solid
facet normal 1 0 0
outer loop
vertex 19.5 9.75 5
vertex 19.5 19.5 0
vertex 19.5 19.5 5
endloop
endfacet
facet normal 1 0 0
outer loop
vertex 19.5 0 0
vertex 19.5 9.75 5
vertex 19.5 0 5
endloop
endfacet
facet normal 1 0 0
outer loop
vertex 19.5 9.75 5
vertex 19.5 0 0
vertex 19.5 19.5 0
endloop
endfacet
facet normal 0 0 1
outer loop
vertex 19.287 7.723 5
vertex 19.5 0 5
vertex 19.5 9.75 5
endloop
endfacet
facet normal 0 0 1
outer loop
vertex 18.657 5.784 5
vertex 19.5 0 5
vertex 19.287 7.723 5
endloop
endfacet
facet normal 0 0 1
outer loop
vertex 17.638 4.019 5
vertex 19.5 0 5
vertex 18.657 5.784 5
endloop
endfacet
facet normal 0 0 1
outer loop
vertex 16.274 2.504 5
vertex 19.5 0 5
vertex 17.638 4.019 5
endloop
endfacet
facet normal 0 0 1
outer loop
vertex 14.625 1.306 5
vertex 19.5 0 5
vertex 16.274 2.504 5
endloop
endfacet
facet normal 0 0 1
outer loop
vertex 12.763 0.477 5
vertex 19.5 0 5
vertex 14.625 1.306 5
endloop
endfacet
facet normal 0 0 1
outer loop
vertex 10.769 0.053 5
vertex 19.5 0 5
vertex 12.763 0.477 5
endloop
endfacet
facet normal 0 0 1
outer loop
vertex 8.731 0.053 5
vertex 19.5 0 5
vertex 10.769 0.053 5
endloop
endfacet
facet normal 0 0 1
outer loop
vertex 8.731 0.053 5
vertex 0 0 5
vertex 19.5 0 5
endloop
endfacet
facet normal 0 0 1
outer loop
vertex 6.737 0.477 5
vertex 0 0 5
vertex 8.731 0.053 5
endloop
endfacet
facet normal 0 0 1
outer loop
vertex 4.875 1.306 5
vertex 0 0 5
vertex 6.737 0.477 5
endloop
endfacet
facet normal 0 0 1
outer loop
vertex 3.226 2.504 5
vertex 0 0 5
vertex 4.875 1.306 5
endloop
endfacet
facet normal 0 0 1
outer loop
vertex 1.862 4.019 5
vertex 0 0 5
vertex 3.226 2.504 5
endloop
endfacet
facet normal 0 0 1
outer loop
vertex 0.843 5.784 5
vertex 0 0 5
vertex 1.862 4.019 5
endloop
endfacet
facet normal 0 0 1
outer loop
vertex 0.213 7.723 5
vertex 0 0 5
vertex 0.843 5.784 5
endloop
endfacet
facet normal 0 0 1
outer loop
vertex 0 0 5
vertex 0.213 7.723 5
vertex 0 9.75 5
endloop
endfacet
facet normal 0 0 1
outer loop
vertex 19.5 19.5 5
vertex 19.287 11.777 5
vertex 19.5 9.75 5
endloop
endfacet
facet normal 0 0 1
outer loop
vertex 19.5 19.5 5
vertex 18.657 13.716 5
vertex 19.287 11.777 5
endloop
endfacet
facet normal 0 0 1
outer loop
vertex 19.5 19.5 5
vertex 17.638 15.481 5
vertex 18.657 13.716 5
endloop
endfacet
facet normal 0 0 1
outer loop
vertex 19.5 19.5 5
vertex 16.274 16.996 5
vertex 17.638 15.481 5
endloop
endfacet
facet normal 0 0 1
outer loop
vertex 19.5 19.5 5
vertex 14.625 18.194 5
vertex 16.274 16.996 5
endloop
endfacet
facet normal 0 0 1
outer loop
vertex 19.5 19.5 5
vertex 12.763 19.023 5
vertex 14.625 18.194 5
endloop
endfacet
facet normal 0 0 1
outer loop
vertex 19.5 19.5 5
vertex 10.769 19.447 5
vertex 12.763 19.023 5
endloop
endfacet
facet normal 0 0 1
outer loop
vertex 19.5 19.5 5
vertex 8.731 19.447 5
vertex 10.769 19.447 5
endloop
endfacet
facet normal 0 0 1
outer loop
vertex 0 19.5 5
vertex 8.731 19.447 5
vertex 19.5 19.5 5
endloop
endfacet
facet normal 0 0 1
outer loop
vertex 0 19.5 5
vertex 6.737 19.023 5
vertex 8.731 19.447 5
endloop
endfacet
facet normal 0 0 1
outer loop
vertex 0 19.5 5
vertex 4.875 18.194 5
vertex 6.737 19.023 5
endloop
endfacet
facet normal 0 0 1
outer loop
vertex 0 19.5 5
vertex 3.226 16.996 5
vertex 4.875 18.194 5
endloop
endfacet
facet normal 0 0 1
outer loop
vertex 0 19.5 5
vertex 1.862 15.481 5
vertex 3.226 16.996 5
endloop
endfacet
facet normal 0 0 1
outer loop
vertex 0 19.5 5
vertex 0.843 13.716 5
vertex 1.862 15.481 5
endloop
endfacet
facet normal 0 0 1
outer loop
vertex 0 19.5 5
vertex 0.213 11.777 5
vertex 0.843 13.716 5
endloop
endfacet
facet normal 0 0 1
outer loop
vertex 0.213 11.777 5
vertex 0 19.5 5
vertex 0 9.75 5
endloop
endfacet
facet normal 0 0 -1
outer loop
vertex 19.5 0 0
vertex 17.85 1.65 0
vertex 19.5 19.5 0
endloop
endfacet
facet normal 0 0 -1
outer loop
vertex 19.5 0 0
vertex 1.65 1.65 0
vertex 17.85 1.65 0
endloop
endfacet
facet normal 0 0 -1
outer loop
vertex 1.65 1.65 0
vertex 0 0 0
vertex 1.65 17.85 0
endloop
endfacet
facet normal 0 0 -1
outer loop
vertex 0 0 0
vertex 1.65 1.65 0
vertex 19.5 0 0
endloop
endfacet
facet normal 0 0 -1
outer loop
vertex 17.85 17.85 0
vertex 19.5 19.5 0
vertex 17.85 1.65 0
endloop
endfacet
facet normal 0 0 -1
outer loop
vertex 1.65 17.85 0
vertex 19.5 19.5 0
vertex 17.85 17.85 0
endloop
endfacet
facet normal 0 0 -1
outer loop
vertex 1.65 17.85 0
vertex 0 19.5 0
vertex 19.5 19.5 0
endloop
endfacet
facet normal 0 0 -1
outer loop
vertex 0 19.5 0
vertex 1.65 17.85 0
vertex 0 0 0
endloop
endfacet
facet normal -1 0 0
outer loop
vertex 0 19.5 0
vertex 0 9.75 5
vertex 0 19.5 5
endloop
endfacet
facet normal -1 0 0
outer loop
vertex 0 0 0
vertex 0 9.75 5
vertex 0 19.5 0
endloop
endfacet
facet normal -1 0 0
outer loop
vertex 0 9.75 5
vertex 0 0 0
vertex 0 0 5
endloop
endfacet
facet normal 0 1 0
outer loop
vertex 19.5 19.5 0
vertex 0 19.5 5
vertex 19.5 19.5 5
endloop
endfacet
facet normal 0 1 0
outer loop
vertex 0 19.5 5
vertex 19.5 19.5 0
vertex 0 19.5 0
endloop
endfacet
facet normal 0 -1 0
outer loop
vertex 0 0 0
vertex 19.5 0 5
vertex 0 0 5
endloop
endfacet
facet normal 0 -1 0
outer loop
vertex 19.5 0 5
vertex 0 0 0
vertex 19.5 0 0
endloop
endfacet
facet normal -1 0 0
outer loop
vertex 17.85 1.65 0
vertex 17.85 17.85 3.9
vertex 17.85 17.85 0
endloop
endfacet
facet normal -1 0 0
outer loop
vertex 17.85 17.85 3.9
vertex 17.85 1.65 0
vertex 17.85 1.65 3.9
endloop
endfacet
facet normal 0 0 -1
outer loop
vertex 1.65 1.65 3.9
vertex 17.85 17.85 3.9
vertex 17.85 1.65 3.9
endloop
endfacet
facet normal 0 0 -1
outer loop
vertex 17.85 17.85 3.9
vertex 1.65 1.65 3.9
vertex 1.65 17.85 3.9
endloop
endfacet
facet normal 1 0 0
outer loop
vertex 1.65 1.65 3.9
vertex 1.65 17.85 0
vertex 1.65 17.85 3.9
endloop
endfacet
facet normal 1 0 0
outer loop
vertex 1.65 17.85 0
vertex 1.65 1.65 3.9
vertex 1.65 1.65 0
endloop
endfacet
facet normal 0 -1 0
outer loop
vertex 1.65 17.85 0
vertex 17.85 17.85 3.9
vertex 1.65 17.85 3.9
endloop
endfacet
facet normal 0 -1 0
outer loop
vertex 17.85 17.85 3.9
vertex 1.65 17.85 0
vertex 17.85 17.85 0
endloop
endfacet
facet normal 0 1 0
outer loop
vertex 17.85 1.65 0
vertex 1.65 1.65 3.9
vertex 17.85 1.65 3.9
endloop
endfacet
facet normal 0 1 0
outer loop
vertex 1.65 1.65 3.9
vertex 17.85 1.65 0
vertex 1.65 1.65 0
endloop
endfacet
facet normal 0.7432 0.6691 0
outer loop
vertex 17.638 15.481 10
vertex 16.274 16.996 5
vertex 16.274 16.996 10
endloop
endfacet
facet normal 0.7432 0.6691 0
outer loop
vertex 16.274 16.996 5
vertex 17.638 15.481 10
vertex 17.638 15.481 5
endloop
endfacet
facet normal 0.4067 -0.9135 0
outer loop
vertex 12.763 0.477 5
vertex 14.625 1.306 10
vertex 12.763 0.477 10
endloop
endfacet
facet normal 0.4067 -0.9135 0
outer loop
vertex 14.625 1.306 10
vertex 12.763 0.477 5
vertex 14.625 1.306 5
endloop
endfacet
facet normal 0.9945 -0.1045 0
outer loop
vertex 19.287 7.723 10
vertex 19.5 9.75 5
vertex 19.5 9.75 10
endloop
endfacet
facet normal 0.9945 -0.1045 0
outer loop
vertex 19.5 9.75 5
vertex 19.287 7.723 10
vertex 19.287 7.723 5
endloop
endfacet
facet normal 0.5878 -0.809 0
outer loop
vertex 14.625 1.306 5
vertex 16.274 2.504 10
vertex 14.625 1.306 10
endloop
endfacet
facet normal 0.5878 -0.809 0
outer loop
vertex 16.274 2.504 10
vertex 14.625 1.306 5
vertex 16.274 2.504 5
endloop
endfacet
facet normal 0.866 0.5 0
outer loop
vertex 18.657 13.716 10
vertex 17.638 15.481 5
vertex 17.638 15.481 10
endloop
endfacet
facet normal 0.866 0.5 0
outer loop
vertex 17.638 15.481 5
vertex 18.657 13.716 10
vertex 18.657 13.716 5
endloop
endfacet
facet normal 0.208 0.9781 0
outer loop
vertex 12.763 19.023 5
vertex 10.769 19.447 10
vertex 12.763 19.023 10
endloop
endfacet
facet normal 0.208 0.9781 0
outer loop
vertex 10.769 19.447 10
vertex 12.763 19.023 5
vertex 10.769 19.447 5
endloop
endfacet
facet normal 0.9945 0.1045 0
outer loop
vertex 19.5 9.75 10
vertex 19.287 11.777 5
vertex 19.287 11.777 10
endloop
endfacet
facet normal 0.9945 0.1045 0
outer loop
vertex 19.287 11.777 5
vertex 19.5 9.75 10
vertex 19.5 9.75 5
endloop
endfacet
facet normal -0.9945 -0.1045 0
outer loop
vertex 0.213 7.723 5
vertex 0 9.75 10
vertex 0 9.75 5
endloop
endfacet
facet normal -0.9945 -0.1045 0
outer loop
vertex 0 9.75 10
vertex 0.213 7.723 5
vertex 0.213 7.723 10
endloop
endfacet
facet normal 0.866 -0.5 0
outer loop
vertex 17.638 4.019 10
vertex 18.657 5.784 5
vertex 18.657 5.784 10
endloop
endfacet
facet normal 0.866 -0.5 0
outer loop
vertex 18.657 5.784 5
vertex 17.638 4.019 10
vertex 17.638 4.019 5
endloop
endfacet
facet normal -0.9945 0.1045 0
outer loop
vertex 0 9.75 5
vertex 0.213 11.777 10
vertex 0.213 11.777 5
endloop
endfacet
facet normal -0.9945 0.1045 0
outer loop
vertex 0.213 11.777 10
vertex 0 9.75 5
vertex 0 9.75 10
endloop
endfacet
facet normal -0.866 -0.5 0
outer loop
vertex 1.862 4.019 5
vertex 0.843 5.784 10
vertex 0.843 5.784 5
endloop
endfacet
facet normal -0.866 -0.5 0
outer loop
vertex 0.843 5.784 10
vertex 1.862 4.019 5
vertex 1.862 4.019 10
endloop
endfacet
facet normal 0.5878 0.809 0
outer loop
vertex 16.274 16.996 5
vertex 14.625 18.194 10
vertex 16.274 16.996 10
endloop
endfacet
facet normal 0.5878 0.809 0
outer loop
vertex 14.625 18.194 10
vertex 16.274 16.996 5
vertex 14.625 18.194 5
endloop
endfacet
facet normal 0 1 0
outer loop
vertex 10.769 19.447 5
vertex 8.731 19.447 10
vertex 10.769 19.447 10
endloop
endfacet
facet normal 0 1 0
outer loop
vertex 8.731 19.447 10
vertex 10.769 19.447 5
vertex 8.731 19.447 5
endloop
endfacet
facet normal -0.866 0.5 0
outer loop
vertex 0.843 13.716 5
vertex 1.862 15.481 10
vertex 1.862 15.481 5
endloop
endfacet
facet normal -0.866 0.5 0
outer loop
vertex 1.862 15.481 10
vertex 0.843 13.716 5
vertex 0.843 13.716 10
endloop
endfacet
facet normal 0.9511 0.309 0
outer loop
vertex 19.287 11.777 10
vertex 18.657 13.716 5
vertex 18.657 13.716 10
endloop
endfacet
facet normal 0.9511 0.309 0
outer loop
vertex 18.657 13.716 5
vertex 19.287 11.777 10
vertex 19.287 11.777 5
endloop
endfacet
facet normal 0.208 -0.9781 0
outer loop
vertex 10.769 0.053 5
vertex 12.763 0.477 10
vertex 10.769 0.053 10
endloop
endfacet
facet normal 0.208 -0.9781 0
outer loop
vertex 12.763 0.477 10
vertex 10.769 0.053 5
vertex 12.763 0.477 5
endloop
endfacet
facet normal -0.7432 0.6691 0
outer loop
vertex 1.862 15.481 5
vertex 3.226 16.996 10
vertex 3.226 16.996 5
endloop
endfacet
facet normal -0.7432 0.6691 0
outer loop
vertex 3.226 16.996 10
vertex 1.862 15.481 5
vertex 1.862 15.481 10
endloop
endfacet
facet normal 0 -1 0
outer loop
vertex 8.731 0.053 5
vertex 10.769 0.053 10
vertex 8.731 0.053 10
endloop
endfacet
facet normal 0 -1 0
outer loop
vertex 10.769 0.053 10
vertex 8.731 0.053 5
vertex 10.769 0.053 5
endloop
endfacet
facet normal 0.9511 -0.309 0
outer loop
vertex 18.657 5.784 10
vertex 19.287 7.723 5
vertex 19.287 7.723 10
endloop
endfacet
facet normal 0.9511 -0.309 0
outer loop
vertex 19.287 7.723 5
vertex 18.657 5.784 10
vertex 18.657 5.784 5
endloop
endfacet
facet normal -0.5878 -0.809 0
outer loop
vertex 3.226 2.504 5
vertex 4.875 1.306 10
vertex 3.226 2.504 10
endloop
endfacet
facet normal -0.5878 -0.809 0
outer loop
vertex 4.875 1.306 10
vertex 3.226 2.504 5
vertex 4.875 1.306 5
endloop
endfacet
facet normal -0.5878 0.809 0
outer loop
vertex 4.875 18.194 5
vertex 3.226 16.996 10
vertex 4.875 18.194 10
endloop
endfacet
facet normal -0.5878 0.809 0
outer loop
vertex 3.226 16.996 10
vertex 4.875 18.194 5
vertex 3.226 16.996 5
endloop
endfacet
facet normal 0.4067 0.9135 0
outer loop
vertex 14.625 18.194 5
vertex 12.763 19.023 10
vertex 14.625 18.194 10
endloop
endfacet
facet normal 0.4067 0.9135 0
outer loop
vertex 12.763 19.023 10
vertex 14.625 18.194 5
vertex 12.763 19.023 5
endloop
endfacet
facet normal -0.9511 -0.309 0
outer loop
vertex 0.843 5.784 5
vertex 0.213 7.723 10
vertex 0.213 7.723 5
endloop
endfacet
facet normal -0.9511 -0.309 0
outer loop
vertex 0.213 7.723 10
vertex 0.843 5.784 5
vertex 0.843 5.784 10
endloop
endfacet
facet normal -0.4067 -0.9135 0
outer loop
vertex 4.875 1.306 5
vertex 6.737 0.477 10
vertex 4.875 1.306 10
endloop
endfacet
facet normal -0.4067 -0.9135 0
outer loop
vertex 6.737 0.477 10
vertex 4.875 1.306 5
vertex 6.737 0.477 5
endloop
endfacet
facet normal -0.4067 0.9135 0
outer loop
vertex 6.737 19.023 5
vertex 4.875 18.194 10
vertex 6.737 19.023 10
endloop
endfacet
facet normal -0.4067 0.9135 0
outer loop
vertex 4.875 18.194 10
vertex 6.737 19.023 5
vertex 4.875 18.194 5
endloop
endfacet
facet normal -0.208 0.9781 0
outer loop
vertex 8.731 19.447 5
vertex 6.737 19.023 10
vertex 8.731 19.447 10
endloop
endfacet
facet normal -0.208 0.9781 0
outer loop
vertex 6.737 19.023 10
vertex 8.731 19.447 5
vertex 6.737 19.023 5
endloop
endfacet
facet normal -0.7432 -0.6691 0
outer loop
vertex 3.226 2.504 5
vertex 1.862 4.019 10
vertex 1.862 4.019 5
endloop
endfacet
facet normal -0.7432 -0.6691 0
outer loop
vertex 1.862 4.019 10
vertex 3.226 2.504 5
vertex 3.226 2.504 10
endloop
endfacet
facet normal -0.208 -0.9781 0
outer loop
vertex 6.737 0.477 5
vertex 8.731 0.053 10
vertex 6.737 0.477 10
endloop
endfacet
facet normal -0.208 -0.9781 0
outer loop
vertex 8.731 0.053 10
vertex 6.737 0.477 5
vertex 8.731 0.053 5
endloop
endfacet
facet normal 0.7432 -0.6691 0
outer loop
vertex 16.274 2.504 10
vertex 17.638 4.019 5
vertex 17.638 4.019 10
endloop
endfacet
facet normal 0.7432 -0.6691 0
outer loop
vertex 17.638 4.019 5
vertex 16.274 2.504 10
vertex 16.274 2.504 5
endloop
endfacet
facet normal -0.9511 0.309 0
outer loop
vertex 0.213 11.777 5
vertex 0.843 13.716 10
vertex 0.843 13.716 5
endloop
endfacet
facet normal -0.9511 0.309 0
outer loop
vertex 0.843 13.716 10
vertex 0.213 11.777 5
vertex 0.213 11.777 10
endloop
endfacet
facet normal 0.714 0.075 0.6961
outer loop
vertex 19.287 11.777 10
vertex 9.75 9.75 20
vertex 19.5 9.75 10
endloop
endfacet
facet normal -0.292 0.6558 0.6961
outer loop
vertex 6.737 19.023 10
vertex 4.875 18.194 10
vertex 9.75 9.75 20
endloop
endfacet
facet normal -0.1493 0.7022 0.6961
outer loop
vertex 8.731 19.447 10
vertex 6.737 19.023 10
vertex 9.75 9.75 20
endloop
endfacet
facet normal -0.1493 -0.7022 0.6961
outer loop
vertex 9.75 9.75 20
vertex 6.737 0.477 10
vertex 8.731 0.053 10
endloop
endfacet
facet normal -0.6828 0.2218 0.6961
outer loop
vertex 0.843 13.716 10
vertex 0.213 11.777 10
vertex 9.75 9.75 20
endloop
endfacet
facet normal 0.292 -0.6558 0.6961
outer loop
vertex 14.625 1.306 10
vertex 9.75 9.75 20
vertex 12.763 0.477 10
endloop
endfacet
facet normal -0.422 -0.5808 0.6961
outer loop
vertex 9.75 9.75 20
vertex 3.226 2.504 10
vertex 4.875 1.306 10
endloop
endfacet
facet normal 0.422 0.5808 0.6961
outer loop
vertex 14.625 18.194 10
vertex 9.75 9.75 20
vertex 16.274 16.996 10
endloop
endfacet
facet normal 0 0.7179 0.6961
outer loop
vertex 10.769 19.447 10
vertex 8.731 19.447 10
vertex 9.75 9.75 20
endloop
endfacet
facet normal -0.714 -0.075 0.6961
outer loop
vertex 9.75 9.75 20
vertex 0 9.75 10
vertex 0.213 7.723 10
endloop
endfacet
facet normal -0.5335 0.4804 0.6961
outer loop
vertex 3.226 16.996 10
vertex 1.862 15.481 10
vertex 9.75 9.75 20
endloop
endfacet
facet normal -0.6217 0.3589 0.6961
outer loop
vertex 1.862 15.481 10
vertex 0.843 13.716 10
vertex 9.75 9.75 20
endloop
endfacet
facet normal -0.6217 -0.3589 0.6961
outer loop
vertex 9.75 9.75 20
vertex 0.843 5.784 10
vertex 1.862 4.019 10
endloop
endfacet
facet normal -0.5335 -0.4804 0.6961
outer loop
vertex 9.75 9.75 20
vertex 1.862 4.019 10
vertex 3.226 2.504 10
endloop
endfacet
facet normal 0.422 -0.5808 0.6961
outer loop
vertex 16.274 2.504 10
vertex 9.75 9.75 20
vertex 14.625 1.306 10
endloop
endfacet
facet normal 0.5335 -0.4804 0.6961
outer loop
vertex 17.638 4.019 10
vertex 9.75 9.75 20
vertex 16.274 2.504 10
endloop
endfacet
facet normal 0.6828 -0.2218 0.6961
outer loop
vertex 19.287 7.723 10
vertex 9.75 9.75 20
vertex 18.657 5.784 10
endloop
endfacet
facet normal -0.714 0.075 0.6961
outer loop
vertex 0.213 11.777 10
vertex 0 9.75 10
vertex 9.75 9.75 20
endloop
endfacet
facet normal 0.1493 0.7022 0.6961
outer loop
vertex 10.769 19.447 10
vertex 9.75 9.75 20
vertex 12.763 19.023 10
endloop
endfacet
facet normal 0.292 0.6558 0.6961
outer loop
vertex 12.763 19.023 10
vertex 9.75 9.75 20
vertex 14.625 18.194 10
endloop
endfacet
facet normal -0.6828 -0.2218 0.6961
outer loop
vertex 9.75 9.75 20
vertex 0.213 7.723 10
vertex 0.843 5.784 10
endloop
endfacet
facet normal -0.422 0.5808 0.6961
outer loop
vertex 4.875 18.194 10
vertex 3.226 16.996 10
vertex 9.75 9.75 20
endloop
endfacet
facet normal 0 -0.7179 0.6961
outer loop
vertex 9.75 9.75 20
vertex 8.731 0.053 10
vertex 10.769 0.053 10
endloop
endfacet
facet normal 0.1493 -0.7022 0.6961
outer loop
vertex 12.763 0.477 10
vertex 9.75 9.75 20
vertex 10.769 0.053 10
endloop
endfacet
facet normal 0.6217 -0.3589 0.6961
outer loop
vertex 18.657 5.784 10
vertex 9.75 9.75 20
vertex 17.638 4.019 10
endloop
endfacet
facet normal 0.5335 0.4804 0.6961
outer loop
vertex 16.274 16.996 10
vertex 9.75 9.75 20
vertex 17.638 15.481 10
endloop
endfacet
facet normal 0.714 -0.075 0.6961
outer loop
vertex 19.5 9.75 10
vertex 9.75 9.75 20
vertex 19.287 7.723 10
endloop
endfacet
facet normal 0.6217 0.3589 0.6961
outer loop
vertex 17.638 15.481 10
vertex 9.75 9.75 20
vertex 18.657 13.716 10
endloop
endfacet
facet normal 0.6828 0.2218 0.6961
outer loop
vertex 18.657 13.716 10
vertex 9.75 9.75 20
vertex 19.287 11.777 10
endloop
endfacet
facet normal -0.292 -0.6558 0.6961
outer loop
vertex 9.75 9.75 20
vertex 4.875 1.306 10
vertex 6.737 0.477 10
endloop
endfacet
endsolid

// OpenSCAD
// file: CommonModules.scad
//    $$$$$$\   $$$$$$\   $$$$$$\  $$\   $$\ $$$$$$\ $$$$$$$\  $$$$$$$$\ 
//    $$  __$$\ $$  __$$\ $$  __$$\ $$ |  $$ |\_$$  _|$$  __$$\ $$  _____|
//    $$ /  $$ |$$ /  \__|$$ /  $$ |$$ |  $$ |  $$ |  $$ |  $$ |$$ |      
//    $$$$$$$$ |$$ |      $$ |  $$ |$$ |  $$ |  $$ |  $$$$$$$  |$$$$$\    
//    $$  __$$ |$$ |      $$ |  $$ |$$ |  $$ |  $$ |  $$  __$$< $$  __|   
//    $$ |  $$ |$$ |  $$\ $$ $$\$$ |$$ |  $$ |  $$ |  $$ |  $$ |$$ |      
//    $$ |  $$ |\$$$$$$  |\$$$$$$ / \$$$$$$  |$$$$$$\ $$ |  $$ |$$$$$$$$\ 
//    \__|  \__| \______/  \___$$$\  \______/ \______|\__|  \__|\________|
//                            \___|                                      
//      
//       Print and play - OpenScad project - by Bekkalizer and ChatGPT
// 
// This file is part of the Acquire stl project.
// Copyright (C) 2025 Bekkalizer
//
// Acquire stl project is free software: you can redistribute it and/or modify
// it under the terms of the GNU General Public License as published
// by the Free Software Foundation, either version 3 of the License,
// or (at your option) any later version.
//
// Acquire stl project is distributed in the hope that it will be useful,
// but WITHOUT ANY WARRANTY; without even the implied warranty of
// MERCHANTABILITY or FITNESS FOR A PARTICULAR PURPOSE. See the
// GNU General Public License for more details.
//
// You should have received a copy of the GNU General Public License
// along with this program. If not, see <https://www.gnu.org/licenses/>.

module cube_with_extruded_bottom( cube_size = [19.5, 19.5, 5] ) {
    //Main build script parameters:
    max_width = 19.2;
    top_lip = 2;
    top_height = 3;
    //Calculated hole size:
    inside_margins = 1;
    hole_width = max_width - 2 * (top_lip) + inside_margins;
    hole_height = top_height + inside_margins;
    
    hole_size = [hole_width, hole_width, hole_height]; // Hole dimensions (same height as cube)
    hole_offset = [(cube_size[0] - hole_size[0]) / 2, (cube_size[1] - hole_size[1]) / 2, -0.1]; // Centered on bottom
    difference() {
        // Main Cube
        cube(cube_size);
        
        // Hole Cube (subtracting from bottom)
        translate(hole_offset)
            cube(hole_size);
    }
}
// main file
//    $$$$$$\   $$$$$$\   $$$$$$\  $$\   $$\ $$$$$$\ $$$$$$$\  $$$$$$$$\ 
//    $$  __$$\ $$  __$$\ $$  __$$\ $$ |  $$ |\_$$  _|$$  __$$\ $$  _____|
//    $$ /  $$ |$$ /  \__|$$ /  $$ |$$ |  $$ |  $$ |  $$ |  $$ |$$ |      
//    $$$$$$$$ |$$ |      $$ |  $$ |$$ |  $$ |  $$ |  $$$$$$$  |$$$$$\    
//    $$  __$$ |$$ |      $$ |  $$ |$$ |  $$ |  $$ |  $$  __$$< $$  __|   
//    $$ |  $$ |$$ |  $$\ $$ $$\$$ |$$ |  $$ |  $$ |  $$ |  $$ |$$ |      
//    $$ |  $$ |\$$$$$$  |\$$$$$$ / \$$$$$$  |$$$$$$\ $$ |  $$ |$$$$$$$$\ 
//    \__|  \__| \______/  \___$$$\  \______/ \______|\__|  \__|\________|
//                            \___|                                      
//      
//       Print and play - OpenScad project - by Bekkalizer and ChatGPT

use <CommonModules.scad>

tent_height = 15;
tent_wall_height = 5;

// Parameters
bottom_width = 19.5;
bottom_height = 5;

tent_radius = bottom_width/2;


union () {
    cube_with_extruded_bottom([bottom_width, bottom_width, bottom_height]);

    translate([tent_radius,tent_radius,bottom_height])
        cylinder(h = tent_wall_height, r = tent_radius);
    translate([tent_radius,tent_radius,bottom_height+tent_wall_height])
        cylinder(h = tent_height-tent_wall_height, r1 = tent_radius, r2 = 0);
}
